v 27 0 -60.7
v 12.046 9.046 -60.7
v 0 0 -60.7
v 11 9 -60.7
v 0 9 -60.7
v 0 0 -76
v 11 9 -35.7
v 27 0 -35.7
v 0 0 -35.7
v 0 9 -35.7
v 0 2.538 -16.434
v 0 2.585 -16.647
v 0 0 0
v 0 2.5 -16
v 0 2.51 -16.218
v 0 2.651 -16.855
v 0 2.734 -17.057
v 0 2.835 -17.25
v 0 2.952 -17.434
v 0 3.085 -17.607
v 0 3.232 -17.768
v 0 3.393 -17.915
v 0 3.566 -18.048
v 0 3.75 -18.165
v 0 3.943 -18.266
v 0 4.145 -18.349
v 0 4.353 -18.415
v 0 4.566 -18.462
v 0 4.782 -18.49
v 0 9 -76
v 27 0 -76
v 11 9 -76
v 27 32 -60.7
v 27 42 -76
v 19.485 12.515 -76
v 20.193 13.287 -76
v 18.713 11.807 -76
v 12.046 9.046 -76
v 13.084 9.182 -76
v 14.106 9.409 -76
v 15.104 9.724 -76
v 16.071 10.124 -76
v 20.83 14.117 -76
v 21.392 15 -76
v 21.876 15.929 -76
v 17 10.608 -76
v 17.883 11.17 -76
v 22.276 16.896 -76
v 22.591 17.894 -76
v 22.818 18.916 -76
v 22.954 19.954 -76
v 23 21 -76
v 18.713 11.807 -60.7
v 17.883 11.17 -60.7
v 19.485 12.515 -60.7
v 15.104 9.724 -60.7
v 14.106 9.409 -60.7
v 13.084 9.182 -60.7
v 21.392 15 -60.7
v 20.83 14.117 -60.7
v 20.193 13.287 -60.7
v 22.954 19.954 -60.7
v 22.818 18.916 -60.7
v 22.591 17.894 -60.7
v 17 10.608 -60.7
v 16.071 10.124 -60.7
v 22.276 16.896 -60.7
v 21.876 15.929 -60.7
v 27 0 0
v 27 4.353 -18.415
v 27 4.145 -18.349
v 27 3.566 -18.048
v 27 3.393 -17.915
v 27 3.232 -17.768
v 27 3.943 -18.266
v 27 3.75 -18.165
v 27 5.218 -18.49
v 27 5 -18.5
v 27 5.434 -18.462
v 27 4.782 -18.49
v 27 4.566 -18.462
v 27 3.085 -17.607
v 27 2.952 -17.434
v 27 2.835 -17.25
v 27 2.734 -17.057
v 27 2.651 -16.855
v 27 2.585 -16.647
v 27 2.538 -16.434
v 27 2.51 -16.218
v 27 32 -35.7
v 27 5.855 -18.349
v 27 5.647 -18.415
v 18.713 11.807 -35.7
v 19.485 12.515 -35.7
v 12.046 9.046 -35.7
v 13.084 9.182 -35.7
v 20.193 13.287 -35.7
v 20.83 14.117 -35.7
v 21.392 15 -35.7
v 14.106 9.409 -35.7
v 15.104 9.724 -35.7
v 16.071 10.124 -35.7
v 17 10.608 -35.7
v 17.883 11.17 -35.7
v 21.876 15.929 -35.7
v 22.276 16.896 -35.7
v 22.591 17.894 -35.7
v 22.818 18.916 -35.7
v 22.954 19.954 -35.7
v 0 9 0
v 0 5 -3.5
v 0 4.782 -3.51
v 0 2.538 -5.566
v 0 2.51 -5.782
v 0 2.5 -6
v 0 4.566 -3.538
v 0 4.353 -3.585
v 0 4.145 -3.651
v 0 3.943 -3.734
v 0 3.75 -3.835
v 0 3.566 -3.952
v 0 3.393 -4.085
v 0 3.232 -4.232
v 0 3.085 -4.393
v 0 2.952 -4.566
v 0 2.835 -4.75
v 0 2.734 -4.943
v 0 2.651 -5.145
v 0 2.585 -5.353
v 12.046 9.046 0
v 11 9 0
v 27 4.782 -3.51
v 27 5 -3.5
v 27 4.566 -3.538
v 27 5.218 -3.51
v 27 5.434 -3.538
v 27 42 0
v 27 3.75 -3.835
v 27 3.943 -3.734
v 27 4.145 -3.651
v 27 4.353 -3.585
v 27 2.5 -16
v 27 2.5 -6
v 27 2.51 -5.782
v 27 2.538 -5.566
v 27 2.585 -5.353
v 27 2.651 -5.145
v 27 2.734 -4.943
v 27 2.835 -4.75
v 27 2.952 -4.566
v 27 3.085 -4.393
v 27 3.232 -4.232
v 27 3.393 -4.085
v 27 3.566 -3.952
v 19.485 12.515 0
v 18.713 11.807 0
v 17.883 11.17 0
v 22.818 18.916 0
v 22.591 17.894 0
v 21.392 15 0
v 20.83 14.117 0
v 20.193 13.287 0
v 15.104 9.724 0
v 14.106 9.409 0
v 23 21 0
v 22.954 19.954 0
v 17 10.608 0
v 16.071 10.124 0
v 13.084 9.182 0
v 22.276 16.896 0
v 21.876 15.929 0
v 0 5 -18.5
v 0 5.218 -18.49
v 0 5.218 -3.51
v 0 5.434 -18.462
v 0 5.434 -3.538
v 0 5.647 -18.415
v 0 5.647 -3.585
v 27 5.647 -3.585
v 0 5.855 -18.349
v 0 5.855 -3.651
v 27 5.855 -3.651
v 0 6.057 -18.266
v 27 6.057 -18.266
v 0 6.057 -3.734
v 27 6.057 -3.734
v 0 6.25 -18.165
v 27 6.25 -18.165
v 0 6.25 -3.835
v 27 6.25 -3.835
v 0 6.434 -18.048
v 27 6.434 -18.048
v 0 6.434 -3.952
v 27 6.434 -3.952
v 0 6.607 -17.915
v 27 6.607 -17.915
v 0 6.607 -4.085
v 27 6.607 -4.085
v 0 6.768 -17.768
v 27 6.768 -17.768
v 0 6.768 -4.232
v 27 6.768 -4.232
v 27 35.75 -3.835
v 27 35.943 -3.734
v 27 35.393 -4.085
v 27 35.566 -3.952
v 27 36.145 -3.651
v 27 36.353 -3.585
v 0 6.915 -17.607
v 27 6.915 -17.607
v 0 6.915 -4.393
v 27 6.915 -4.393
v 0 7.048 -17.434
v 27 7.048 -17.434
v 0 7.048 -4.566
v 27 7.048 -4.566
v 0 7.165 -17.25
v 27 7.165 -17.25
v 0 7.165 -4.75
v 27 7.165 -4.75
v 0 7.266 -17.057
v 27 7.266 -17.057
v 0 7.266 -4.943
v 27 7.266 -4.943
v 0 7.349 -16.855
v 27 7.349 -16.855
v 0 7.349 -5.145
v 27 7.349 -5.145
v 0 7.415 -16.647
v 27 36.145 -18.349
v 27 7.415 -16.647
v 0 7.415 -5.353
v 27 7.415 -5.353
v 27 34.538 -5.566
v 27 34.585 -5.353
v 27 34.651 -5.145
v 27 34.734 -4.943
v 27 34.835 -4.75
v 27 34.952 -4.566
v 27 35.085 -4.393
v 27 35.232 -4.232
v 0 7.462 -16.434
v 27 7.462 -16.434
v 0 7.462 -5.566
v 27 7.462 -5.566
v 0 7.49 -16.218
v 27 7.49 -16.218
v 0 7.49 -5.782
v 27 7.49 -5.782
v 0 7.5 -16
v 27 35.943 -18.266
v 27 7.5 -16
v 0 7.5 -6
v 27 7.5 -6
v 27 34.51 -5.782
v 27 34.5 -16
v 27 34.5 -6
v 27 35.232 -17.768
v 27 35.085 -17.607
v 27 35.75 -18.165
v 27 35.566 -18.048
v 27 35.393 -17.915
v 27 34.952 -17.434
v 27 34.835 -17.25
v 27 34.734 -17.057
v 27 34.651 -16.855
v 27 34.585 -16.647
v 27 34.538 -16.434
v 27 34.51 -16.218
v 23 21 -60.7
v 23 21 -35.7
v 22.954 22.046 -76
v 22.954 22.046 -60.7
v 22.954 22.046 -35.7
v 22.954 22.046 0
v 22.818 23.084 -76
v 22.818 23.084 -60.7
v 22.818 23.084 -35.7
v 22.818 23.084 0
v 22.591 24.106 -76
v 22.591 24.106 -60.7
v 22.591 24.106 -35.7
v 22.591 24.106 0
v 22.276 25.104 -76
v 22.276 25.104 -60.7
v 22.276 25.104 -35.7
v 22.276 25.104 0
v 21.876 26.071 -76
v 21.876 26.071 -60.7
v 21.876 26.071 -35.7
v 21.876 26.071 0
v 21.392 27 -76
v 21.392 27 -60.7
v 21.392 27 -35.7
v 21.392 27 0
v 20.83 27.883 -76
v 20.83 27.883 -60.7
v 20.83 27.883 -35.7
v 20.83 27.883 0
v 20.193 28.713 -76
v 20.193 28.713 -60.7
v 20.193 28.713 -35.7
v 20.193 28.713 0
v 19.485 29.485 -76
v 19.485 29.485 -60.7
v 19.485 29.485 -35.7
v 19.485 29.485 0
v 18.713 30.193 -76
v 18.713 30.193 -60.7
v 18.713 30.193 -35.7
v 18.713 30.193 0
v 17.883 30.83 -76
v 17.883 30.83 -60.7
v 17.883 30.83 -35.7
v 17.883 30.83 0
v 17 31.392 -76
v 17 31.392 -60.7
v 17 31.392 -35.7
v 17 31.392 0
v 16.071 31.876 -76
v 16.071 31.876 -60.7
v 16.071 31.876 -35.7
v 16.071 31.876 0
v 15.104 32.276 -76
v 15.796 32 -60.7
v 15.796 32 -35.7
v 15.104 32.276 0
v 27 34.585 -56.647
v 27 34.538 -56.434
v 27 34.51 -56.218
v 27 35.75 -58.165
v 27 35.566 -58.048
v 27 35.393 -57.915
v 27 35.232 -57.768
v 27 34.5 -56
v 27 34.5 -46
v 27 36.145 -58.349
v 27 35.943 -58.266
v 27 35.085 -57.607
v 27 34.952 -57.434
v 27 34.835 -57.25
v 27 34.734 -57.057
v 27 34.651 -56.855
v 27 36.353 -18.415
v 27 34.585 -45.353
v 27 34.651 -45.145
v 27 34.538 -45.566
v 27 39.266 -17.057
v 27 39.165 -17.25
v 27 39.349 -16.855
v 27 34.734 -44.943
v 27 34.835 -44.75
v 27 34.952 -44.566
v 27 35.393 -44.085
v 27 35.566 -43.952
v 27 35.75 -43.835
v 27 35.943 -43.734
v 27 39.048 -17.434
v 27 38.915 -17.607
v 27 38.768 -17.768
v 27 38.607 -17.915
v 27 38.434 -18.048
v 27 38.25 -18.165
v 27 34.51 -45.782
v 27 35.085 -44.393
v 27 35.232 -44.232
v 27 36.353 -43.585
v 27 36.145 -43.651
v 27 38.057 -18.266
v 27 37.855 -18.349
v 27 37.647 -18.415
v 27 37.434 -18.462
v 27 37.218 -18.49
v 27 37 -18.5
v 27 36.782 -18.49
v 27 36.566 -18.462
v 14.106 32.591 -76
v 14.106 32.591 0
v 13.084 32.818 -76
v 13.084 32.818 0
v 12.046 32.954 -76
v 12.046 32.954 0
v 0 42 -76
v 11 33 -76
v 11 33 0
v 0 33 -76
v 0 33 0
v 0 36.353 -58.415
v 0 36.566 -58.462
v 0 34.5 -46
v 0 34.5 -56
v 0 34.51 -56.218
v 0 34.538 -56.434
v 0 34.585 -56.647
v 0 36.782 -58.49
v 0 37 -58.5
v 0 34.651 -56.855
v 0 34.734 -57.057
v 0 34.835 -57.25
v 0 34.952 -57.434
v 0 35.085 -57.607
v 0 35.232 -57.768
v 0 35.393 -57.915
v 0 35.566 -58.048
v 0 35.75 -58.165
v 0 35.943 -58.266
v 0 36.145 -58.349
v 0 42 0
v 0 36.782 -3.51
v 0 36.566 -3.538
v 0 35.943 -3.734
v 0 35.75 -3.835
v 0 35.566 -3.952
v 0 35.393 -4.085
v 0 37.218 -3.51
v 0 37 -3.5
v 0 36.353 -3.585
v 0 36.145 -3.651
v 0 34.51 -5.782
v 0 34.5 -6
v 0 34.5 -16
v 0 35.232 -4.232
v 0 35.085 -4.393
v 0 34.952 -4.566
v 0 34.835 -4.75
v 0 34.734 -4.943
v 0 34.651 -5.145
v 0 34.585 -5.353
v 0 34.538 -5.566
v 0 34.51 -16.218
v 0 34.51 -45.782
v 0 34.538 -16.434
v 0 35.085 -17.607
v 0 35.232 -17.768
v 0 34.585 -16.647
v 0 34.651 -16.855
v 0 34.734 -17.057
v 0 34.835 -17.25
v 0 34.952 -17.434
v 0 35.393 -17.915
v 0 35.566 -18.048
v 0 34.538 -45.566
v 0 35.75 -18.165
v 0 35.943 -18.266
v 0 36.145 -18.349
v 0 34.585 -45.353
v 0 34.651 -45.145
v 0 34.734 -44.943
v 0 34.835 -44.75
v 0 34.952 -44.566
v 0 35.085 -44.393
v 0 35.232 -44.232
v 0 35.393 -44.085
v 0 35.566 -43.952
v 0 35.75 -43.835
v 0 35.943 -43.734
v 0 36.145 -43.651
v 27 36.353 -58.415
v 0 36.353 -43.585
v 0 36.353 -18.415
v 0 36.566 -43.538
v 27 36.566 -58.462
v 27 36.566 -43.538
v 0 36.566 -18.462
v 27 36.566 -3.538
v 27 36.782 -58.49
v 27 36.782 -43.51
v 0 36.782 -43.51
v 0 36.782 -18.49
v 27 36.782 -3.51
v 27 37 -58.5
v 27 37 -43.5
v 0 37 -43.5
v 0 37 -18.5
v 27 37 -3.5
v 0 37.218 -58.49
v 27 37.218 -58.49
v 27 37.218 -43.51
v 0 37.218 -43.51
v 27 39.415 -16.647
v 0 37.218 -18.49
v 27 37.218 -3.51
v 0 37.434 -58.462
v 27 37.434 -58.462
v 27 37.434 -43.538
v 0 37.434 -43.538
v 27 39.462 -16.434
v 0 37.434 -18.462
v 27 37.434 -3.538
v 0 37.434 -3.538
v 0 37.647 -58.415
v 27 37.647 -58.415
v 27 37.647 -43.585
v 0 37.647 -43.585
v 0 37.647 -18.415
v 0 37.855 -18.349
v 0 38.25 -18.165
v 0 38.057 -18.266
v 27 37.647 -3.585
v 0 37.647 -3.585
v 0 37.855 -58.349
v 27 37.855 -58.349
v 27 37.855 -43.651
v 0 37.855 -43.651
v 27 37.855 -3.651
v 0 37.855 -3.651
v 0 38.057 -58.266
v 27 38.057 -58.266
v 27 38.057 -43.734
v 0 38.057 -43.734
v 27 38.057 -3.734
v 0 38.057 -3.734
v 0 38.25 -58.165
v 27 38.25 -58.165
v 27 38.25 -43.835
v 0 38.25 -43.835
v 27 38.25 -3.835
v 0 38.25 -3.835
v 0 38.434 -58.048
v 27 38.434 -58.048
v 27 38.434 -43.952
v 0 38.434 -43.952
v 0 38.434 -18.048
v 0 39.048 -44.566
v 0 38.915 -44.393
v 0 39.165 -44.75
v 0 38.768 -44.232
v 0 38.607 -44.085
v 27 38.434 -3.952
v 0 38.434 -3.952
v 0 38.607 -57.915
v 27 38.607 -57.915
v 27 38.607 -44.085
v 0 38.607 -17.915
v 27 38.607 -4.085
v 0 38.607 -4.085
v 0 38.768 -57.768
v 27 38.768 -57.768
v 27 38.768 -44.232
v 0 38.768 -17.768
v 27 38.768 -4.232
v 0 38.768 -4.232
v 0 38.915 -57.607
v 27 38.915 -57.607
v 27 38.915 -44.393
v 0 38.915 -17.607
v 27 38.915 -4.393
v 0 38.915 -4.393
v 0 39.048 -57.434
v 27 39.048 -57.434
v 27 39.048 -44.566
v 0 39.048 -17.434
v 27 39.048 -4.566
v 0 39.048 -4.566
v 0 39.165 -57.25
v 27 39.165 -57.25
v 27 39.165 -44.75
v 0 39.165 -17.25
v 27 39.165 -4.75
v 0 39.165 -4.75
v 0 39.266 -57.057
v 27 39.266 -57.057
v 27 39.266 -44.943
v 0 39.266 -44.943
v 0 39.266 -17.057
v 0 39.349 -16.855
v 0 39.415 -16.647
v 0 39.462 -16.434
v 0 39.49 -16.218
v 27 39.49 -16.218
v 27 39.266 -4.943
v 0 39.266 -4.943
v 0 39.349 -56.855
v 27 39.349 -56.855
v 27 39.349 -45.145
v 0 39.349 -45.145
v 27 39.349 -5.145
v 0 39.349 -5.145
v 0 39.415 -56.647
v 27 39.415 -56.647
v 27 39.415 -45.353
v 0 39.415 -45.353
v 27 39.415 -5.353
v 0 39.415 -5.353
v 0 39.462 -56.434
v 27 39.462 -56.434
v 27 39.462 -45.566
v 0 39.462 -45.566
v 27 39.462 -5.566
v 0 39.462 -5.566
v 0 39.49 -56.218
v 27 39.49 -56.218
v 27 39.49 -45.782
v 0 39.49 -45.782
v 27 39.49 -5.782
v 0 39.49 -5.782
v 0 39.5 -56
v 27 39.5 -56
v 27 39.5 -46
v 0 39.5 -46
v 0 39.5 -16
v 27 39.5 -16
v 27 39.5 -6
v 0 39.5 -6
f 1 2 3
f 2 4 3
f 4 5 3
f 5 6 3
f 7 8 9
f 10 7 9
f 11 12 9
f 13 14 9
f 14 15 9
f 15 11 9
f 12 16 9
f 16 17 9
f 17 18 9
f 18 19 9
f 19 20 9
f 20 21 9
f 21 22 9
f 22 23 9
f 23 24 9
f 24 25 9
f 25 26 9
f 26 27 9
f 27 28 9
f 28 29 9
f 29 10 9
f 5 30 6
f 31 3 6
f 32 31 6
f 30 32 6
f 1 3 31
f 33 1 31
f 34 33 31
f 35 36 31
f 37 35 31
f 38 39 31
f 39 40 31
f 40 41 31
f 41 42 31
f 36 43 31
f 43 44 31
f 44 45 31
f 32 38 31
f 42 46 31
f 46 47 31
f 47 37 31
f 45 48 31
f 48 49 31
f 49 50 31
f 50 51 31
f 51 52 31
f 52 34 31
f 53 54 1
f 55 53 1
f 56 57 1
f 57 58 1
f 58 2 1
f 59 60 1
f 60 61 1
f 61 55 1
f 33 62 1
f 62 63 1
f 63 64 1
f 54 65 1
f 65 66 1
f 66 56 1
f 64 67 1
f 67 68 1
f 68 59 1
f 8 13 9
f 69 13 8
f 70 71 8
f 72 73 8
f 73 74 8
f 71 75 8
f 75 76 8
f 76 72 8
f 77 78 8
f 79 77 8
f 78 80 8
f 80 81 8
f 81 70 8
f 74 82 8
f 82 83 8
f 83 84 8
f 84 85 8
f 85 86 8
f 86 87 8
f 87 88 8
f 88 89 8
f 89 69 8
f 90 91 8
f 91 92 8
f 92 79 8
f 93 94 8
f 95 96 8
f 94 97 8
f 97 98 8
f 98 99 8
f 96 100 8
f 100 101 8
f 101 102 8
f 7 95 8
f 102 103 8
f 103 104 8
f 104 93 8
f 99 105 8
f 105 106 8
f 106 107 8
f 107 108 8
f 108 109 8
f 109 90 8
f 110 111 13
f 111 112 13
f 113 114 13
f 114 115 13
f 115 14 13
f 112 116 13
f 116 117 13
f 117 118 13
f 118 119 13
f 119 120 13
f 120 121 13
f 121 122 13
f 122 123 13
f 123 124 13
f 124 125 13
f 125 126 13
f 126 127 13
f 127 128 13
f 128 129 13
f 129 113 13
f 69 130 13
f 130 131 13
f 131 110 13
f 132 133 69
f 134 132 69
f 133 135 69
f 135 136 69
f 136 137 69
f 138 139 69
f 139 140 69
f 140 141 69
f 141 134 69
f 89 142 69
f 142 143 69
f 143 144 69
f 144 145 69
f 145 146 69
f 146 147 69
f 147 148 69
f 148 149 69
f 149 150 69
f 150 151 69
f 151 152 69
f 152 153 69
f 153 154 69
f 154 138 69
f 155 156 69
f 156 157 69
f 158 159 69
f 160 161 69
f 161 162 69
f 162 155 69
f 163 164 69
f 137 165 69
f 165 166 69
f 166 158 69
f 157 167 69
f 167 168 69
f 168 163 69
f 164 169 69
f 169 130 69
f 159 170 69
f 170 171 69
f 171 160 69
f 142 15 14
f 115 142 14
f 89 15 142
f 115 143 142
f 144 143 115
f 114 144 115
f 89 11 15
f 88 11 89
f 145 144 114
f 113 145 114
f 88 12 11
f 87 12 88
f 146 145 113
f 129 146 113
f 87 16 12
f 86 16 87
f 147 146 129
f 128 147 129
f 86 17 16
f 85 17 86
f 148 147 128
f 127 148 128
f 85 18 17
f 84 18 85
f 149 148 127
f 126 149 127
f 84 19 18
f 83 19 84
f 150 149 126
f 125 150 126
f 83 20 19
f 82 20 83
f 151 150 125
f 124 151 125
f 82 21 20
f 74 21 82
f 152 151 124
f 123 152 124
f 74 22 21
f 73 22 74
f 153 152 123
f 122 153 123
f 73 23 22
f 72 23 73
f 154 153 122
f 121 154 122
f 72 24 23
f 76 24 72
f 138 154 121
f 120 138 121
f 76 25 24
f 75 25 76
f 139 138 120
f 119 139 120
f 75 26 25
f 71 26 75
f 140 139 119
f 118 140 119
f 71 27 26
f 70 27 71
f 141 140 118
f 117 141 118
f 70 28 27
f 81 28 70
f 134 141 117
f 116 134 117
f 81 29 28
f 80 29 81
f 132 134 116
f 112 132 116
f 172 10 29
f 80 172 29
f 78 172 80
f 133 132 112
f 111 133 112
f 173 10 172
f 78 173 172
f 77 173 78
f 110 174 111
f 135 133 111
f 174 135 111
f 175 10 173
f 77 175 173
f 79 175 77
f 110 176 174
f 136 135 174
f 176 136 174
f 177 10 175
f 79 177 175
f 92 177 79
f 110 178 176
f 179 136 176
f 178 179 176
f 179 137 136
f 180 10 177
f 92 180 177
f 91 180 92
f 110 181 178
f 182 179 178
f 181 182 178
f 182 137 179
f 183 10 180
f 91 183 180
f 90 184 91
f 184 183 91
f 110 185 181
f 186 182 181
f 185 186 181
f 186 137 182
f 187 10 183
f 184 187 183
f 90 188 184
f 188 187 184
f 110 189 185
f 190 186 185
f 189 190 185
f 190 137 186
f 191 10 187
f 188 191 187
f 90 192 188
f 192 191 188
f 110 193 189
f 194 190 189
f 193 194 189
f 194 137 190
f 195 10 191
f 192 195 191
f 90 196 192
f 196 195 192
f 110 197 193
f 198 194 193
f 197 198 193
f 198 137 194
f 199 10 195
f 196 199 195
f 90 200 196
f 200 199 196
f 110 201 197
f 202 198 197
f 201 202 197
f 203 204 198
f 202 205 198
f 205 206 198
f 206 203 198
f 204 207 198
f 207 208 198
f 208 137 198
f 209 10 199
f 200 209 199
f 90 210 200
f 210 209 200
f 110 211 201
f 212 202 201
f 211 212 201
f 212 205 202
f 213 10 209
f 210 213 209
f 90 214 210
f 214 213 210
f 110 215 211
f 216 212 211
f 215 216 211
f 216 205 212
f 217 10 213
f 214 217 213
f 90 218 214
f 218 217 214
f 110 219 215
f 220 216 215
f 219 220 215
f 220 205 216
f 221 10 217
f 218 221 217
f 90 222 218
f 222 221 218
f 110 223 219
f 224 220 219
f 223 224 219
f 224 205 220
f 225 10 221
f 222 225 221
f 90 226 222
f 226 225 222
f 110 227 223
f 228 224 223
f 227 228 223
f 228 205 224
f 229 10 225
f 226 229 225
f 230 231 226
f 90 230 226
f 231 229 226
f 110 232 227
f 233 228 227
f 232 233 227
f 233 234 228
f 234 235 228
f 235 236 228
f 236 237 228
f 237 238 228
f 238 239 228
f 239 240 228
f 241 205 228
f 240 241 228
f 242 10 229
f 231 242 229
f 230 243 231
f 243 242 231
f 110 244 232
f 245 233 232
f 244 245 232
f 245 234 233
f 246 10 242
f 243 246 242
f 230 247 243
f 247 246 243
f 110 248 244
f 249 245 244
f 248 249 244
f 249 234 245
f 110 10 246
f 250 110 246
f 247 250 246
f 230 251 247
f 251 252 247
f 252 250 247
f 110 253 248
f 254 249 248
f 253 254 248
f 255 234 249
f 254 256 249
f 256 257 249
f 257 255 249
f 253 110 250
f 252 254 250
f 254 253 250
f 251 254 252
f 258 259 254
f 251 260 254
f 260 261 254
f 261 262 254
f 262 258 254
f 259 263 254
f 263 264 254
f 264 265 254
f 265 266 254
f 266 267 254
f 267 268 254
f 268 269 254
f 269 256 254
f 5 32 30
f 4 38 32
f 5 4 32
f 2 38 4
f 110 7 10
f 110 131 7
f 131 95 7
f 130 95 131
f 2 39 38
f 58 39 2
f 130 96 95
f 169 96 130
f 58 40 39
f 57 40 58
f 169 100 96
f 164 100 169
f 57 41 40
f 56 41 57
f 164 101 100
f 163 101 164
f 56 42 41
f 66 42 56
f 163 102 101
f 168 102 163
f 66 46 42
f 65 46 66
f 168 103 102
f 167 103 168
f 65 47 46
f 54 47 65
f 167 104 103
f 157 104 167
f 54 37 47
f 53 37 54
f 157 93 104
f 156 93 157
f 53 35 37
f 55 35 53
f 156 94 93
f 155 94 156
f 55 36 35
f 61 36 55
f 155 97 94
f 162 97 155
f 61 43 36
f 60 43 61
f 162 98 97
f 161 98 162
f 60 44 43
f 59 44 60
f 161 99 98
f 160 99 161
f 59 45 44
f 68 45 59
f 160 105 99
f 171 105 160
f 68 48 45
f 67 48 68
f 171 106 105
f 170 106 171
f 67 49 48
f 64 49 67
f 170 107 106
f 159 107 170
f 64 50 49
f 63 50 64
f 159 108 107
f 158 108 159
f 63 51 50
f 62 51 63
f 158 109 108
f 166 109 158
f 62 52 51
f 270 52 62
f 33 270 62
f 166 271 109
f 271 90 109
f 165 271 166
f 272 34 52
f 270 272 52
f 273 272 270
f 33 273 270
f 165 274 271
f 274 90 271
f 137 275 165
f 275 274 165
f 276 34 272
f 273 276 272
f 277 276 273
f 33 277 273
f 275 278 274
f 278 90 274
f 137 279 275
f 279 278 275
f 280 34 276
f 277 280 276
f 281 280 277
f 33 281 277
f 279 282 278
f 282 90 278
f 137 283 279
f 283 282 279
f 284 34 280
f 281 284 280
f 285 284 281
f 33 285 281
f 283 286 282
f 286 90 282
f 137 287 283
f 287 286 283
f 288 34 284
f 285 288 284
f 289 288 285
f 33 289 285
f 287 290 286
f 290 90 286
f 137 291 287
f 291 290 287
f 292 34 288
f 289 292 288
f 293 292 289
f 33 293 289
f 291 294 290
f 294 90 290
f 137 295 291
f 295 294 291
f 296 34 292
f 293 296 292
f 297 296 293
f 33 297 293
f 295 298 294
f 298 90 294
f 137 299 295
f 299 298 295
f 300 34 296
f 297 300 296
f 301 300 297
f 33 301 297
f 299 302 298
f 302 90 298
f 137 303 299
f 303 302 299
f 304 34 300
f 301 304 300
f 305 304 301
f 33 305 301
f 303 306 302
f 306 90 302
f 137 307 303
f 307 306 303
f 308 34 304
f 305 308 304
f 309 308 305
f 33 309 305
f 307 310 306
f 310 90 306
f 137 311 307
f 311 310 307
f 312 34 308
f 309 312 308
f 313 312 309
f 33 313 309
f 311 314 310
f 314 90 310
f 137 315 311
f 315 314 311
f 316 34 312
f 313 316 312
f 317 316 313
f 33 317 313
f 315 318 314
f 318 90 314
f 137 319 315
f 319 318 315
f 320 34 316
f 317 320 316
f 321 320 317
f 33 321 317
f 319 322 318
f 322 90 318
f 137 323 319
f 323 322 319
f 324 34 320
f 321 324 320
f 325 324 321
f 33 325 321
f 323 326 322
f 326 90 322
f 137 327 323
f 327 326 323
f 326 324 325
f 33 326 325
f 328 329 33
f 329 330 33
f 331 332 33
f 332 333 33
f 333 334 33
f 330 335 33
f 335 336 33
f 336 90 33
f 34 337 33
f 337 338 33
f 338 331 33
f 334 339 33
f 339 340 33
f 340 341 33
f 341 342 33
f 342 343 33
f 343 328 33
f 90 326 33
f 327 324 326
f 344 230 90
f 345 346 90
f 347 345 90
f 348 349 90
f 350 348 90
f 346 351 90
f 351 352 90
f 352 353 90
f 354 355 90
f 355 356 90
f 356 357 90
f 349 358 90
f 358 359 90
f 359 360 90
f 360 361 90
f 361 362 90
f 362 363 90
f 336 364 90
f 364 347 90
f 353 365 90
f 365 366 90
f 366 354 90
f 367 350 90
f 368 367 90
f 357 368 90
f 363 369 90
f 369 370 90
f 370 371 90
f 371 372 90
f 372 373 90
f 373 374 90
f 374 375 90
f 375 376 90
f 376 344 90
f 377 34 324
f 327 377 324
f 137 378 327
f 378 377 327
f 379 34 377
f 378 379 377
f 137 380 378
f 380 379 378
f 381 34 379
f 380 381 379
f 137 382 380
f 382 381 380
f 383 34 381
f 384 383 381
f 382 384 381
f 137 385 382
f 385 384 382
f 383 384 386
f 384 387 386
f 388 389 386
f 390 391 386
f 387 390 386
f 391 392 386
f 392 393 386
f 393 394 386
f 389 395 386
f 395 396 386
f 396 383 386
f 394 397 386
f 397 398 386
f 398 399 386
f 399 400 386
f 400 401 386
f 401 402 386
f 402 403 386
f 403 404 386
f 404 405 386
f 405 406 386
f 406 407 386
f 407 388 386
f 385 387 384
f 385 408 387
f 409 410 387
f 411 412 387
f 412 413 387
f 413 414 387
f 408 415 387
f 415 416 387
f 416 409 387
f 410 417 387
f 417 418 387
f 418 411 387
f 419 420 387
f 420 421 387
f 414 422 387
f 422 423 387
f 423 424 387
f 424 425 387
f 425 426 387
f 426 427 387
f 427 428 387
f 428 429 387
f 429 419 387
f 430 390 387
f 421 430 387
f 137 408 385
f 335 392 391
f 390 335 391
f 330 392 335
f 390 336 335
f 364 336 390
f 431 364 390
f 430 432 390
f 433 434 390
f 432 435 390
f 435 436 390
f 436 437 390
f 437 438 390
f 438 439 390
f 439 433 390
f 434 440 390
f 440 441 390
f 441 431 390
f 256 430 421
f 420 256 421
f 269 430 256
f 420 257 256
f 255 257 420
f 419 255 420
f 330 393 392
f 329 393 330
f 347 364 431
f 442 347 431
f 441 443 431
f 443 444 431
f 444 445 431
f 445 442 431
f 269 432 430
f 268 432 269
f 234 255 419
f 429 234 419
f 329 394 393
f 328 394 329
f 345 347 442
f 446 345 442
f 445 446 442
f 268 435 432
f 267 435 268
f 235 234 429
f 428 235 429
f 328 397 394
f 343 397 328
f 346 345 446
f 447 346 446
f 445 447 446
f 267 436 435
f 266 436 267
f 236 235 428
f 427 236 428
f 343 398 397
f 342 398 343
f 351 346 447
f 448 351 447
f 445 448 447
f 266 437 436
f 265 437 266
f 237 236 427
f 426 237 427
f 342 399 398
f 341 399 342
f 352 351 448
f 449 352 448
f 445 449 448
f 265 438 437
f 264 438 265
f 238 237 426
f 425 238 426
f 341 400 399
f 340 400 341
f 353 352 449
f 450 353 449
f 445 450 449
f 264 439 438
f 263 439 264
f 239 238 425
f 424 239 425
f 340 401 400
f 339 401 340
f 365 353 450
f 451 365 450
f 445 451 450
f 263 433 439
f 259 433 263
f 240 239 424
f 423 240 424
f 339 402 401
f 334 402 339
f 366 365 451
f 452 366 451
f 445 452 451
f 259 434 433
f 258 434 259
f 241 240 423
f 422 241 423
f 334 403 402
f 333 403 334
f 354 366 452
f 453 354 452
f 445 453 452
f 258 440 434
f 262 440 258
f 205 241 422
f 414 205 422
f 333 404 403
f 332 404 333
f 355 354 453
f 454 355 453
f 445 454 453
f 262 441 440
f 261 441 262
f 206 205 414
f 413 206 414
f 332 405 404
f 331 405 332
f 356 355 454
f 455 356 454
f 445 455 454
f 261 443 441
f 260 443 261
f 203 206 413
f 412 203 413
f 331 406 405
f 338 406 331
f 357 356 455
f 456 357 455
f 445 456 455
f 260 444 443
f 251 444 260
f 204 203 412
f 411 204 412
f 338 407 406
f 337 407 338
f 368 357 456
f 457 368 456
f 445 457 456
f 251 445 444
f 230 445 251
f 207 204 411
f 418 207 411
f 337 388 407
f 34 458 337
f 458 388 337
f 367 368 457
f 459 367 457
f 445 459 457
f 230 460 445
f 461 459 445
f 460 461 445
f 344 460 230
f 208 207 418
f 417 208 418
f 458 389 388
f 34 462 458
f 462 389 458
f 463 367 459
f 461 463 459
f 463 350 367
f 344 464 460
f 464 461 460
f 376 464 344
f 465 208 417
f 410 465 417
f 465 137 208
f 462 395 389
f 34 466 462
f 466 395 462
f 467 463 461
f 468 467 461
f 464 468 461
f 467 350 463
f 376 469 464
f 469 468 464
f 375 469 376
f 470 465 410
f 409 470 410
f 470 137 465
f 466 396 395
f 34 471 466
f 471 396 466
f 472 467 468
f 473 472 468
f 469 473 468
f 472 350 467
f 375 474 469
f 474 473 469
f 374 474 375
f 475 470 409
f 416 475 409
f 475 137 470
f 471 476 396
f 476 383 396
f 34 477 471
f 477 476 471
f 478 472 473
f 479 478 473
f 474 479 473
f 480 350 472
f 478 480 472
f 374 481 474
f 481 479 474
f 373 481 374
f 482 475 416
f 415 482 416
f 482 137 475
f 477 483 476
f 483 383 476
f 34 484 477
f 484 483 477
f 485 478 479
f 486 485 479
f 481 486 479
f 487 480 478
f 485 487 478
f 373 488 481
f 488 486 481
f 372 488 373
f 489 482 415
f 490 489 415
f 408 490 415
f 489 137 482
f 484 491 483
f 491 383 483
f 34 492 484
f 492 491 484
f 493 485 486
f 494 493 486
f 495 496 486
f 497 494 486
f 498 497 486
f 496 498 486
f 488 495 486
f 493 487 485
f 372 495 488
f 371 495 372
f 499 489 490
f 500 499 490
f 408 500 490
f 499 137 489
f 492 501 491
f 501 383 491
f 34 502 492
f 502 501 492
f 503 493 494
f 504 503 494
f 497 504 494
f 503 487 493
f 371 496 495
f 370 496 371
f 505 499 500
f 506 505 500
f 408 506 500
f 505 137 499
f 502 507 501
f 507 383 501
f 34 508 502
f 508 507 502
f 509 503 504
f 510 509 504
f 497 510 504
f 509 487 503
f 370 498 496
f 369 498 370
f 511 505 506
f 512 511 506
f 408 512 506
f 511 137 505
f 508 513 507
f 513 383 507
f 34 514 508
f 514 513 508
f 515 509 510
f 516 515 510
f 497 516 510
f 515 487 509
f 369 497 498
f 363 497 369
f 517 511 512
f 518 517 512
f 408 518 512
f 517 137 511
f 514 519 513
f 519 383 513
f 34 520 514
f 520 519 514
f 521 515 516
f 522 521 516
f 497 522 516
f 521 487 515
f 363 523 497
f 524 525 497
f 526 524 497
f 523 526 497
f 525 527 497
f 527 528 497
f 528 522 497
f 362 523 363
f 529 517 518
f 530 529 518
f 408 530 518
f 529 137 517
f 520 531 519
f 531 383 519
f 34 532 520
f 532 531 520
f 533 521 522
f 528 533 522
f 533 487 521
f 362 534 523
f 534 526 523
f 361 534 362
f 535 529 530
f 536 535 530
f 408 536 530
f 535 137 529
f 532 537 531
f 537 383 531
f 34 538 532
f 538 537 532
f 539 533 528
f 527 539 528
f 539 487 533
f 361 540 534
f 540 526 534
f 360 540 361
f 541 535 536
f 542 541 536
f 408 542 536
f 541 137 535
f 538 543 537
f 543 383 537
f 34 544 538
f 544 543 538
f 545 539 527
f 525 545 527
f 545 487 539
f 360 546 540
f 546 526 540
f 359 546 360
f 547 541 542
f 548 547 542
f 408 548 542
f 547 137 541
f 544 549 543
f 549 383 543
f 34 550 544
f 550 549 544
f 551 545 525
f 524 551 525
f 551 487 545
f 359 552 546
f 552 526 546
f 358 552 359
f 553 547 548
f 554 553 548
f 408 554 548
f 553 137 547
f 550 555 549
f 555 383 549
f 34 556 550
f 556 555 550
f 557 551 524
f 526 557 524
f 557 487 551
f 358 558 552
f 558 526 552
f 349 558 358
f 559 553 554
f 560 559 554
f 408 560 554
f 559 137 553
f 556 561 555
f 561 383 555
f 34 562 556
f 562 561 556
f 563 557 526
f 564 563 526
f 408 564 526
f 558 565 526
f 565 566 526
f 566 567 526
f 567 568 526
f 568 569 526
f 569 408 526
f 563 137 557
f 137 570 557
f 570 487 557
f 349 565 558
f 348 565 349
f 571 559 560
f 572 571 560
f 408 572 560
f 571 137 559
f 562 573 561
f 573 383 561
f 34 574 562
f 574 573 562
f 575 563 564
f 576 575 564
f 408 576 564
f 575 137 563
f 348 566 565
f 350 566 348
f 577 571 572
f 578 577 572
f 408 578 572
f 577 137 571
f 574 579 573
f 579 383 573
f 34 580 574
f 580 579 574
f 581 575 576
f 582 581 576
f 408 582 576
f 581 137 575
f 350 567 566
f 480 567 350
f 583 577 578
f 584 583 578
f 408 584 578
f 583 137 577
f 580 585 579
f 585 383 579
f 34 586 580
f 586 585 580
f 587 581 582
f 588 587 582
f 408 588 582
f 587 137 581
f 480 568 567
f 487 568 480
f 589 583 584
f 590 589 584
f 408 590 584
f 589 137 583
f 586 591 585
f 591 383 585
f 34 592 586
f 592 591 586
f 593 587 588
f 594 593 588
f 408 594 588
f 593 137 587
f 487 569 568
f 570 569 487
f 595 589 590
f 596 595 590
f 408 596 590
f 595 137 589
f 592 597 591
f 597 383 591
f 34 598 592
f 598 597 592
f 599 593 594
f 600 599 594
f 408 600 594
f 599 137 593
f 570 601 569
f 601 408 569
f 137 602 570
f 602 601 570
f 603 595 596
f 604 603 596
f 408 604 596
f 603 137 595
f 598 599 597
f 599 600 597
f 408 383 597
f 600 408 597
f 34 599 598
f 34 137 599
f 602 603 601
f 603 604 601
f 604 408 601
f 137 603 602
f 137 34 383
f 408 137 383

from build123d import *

# Parameters (mm, degrees)
SKETCH2_W           = 27
SKETCH2_H           = 42
BOSS_EXTRUDE1_DEPTH = 76
CUT_EXTRUDE1_DEPTH  = 28
CUT_EXTRUDE2_DEPTH  = 77
SKETCH5_W           = 25
SKETCH5_H           = 32
CUT_EXTRUDE3_DEPTH  = 28


with BuildPart() as part:
    # Sketch2 → Boss-Extrude1 (new body)
    with BuildSketch(Plane.XY):
        with Locations((13.5, 21)):
            Rectangle(SKETCH2_W, SKETCH2_H)
    extrude(amount=-BOSS_EXTRUDE1_DEPTH)

    # Sketch3 → Cut-Extrude1 (cut, through all)
    with BuildSketch(Plane.ZY):
        with BuildLine():
            Line((-56, 39.5), (-46, 39.5))
            ThreePointArc((-46, 39.5), (-43.5, 37), (-46, 34.5))
            Line((-46, 34.5), (-56, 34.5))
            ThreePointArc((-56, 34.5), (-58.5, 37), (-56, 39.5))
        make_face()
        with BuildLine():
            Line((-16, 39.5), (-6, 39.5))
            ThreePointArc((-6, 39.5), (-3.5, 37), (-6, 34.5))
            Line((-6, 34.5), (-16, 34.5))
            ThreePointArc((-16, 34.5), (-18.5, 37), (-16, 39.5))
        make_face()
        with BuildLine():
            Line((-16, 7.5), (-6, 7.5))
            ThreePointArc((-6, 7.5), (-3.5, 5), (-6, 2.5))
            Line((-6, 2.5), (-16, 2.5))
            ThreePointArc((-16, 2.5), (-18.5, 5), (-16, 7.5))
        make_face()
    extrude(amount=-CUT_EXTRUDE1_DEPTH, mode=Mode.SUBTRACT)

    # Sketch4 → Cut-Extrude2 (cut, through all)
    with BuildSketch(Plane.XY):
        with BuildLine():
            Line((11, 33), (0, 33))
            Line((0, 33), (0, 9))
            Line((0, 9), (11, 9))
            ThreePointArc((11, 9), (23, 21), (11, 33))
        make_face()
    extrude(amount=-CUT_EXTRUDE2_DEPTH, mode=Mode.SUBTRACT)

    # Sketch5 → Cut-Extrude3 (cut, through all)
    with BuildSketch(Plane(origin=(27, 0, 0), x_dir=(0, 0, -1), z_dir=(1, 0, 0))):
        with Locations((48.2, 16)):
            Rectangle(SKETCH5_W, SKETCH5_H)
    extrude(amount=-CUT_EXTRUDE3_DEPTH, mode=Mode.SUBTRACT)


solid = part.part
